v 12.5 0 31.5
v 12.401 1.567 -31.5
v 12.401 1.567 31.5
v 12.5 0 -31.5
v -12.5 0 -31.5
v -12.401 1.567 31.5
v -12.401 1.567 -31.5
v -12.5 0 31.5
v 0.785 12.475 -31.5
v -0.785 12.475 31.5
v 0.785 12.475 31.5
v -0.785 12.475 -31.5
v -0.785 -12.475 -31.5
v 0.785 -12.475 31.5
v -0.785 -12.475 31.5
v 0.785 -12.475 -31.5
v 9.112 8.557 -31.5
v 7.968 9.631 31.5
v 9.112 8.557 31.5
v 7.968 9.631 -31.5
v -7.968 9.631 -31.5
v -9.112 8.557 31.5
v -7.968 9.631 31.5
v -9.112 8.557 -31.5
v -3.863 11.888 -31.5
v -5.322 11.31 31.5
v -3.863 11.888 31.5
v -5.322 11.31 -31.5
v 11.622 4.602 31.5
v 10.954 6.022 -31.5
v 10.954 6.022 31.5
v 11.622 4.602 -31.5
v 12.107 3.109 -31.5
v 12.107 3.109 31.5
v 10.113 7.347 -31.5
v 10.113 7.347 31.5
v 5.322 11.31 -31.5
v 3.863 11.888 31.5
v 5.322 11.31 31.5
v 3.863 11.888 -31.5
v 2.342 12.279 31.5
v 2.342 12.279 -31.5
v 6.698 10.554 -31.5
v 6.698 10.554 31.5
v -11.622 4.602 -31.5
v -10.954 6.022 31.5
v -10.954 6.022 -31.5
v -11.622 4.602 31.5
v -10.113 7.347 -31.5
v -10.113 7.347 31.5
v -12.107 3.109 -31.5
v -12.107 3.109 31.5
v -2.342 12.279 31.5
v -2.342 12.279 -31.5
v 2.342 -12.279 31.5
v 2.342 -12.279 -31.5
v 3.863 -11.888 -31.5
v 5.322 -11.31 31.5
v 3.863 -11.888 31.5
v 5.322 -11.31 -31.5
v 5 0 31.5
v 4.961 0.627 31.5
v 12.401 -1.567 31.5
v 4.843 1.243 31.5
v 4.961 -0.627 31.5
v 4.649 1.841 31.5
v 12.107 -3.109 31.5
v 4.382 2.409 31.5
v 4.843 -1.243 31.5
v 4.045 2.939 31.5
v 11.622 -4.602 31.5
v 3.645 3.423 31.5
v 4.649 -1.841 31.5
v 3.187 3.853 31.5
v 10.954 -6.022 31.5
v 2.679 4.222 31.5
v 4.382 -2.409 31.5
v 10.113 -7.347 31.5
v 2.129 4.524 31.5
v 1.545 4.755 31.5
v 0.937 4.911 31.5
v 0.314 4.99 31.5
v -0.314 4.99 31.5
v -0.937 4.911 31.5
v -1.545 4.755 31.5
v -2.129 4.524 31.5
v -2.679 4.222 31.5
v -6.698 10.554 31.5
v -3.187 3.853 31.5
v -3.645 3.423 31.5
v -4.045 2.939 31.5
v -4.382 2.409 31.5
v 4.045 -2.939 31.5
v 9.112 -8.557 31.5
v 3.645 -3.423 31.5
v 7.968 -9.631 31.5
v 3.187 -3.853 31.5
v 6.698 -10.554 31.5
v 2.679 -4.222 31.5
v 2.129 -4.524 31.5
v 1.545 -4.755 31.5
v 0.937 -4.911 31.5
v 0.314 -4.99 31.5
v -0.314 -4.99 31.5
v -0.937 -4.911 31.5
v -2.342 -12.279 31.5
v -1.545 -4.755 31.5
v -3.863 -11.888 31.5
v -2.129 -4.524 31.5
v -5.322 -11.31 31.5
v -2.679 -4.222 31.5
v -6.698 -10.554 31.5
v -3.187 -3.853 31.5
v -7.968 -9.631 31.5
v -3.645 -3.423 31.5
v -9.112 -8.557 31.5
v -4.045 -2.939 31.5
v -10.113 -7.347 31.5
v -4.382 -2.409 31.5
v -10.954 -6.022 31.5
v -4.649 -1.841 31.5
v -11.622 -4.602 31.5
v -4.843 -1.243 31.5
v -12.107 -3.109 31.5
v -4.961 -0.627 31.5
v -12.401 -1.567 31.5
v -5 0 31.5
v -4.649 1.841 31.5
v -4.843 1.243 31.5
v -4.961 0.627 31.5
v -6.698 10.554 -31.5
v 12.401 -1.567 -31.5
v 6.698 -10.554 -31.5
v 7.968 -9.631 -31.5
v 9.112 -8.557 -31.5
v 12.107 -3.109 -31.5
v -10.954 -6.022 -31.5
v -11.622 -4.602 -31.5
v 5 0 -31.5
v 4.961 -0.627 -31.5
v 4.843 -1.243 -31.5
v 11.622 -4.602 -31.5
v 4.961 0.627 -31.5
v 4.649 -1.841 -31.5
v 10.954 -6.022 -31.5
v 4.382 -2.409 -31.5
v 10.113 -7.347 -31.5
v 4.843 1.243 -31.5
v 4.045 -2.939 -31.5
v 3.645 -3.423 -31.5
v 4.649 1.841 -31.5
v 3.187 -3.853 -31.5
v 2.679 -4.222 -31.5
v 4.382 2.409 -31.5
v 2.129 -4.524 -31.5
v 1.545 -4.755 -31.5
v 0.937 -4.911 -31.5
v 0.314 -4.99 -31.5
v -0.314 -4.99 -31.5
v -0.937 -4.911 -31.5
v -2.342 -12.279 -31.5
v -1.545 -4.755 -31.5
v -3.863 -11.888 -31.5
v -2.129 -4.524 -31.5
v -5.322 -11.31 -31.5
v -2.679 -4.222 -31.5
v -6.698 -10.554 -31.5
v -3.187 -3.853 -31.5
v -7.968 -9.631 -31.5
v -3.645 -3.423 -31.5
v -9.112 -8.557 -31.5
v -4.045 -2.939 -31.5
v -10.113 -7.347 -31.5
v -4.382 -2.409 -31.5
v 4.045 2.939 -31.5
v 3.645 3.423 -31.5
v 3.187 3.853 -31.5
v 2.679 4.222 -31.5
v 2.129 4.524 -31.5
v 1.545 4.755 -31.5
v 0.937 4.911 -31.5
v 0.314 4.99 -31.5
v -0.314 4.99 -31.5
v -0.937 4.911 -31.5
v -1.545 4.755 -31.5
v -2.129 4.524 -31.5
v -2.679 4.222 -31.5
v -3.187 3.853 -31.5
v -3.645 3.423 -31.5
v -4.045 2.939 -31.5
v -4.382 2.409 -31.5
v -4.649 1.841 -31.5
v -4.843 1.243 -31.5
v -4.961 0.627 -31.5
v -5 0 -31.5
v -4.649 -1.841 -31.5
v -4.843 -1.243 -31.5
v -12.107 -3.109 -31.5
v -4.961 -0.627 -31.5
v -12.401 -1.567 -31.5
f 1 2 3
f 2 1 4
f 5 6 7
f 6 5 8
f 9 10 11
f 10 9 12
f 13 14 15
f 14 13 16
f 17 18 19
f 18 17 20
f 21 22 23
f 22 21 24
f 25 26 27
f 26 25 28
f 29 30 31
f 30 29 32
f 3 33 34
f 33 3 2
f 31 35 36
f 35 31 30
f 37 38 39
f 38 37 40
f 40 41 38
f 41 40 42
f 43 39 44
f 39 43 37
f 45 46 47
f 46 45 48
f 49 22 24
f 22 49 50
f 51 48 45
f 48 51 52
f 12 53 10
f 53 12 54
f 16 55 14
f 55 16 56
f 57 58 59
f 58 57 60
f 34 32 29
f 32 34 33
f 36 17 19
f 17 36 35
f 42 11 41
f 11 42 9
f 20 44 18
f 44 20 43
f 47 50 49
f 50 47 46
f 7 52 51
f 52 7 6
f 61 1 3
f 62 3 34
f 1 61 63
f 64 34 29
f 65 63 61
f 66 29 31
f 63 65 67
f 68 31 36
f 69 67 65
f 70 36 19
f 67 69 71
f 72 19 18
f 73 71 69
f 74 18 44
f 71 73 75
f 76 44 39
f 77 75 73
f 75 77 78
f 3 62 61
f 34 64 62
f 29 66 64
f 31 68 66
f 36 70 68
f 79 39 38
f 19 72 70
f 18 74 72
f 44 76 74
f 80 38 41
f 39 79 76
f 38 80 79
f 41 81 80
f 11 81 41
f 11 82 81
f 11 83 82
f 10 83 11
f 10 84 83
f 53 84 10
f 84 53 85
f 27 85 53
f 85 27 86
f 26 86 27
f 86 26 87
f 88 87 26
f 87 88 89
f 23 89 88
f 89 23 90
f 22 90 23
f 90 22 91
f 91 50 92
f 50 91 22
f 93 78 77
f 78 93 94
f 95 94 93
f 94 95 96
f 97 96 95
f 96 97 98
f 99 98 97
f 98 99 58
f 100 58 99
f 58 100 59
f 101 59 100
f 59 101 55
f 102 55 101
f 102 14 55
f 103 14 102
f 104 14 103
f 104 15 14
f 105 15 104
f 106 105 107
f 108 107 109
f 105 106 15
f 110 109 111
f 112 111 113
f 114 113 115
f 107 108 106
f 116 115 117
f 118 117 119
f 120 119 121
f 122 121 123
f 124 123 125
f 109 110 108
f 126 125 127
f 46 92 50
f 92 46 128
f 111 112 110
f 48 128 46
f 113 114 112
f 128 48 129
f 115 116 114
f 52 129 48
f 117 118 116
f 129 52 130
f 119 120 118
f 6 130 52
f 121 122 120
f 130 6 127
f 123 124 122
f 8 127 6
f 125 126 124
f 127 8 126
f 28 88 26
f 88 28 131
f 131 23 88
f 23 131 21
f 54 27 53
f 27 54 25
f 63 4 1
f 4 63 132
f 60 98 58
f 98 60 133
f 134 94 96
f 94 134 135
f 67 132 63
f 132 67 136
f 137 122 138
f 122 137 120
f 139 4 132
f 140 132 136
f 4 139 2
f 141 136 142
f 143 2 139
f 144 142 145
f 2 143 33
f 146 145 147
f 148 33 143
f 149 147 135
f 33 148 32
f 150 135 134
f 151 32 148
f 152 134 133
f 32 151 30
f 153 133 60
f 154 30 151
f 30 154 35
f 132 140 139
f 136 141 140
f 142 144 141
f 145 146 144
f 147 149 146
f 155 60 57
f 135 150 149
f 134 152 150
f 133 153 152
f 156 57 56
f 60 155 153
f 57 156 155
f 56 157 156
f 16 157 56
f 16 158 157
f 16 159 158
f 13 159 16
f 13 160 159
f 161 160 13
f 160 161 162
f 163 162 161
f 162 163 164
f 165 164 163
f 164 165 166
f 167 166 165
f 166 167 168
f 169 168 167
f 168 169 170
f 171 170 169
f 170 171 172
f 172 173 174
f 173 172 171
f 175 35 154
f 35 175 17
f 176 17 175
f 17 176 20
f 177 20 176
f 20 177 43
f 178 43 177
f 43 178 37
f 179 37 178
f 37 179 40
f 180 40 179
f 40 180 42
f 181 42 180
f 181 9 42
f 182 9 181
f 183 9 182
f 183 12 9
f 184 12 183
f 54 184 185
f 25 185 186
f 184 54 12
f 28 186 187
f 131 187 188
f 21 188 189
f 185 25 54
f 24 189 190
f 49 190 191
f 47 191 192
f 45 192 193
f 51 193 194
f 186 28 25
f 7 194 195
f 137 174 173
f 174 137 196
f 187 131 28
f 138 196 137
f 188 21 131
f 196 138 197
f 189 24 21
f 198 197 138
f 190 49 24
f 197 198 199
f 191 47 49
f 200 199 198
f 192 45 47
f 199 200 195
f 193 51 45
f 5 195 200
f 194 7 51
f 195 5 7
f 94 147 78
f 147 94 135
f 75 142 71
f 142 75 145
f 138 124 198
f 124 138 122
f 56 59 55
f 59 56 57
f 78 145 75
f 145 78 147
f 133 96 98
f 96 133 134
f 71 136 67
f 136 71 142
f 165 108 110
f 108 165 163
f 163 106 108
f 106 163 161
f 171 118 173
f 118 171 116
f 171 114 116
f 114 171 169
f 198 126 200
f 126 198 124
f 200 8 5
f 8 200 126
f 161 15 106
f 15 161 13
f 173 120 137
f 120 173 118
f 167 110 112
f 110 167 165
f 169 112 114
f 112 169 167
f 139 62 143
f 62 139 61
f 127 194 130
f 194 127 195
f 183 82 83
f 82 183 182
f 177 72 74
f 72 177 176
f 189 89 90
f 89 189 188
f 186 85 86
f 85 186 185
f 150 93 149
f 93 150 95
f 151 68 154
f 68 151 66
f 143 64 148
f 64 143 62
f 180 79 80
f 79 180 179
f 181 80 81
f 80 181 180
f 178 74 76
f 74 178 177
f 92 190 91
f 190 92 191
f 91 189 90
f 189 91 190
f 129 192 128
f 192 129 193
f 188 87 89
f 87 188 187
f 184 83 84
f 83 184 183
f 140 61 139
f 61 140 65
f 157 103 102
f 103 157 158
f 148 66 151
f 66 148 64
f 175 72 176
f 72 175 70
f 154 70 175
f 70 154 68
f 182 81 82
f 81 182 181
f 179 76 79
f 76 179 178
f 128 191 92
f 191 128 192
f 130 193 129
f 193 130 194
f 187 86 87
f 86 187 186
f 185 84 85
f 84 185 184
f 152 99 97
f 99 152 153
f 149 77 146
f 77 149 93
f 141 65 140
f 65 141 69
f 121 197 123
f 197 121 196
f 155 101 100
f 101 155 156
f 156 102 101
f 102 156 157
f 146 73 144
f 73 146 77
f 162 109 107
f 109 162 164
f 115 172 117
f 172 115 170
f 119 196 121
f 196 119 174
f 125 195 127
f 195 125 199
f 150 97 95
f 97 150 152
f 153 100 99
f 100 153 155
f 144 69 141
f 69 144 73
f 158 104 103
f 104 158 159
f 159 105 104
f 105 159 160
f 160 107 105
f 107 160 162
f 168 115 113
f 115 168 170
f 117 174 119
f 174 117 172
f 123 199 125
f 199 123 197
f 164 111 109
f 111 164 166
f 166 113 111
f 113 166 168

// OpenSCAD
$fn = 50;


difference() {
	union() {
		translate(v = [0, 0, -31.5000000000]) {
			cylinder(h = 63, r = 12.5000000000);
		}
	}
	union() {
		translate(v = [0, 0, -100.0000000000]) {
			cylinder(h = 200, r = 5);
		}
	}
}
